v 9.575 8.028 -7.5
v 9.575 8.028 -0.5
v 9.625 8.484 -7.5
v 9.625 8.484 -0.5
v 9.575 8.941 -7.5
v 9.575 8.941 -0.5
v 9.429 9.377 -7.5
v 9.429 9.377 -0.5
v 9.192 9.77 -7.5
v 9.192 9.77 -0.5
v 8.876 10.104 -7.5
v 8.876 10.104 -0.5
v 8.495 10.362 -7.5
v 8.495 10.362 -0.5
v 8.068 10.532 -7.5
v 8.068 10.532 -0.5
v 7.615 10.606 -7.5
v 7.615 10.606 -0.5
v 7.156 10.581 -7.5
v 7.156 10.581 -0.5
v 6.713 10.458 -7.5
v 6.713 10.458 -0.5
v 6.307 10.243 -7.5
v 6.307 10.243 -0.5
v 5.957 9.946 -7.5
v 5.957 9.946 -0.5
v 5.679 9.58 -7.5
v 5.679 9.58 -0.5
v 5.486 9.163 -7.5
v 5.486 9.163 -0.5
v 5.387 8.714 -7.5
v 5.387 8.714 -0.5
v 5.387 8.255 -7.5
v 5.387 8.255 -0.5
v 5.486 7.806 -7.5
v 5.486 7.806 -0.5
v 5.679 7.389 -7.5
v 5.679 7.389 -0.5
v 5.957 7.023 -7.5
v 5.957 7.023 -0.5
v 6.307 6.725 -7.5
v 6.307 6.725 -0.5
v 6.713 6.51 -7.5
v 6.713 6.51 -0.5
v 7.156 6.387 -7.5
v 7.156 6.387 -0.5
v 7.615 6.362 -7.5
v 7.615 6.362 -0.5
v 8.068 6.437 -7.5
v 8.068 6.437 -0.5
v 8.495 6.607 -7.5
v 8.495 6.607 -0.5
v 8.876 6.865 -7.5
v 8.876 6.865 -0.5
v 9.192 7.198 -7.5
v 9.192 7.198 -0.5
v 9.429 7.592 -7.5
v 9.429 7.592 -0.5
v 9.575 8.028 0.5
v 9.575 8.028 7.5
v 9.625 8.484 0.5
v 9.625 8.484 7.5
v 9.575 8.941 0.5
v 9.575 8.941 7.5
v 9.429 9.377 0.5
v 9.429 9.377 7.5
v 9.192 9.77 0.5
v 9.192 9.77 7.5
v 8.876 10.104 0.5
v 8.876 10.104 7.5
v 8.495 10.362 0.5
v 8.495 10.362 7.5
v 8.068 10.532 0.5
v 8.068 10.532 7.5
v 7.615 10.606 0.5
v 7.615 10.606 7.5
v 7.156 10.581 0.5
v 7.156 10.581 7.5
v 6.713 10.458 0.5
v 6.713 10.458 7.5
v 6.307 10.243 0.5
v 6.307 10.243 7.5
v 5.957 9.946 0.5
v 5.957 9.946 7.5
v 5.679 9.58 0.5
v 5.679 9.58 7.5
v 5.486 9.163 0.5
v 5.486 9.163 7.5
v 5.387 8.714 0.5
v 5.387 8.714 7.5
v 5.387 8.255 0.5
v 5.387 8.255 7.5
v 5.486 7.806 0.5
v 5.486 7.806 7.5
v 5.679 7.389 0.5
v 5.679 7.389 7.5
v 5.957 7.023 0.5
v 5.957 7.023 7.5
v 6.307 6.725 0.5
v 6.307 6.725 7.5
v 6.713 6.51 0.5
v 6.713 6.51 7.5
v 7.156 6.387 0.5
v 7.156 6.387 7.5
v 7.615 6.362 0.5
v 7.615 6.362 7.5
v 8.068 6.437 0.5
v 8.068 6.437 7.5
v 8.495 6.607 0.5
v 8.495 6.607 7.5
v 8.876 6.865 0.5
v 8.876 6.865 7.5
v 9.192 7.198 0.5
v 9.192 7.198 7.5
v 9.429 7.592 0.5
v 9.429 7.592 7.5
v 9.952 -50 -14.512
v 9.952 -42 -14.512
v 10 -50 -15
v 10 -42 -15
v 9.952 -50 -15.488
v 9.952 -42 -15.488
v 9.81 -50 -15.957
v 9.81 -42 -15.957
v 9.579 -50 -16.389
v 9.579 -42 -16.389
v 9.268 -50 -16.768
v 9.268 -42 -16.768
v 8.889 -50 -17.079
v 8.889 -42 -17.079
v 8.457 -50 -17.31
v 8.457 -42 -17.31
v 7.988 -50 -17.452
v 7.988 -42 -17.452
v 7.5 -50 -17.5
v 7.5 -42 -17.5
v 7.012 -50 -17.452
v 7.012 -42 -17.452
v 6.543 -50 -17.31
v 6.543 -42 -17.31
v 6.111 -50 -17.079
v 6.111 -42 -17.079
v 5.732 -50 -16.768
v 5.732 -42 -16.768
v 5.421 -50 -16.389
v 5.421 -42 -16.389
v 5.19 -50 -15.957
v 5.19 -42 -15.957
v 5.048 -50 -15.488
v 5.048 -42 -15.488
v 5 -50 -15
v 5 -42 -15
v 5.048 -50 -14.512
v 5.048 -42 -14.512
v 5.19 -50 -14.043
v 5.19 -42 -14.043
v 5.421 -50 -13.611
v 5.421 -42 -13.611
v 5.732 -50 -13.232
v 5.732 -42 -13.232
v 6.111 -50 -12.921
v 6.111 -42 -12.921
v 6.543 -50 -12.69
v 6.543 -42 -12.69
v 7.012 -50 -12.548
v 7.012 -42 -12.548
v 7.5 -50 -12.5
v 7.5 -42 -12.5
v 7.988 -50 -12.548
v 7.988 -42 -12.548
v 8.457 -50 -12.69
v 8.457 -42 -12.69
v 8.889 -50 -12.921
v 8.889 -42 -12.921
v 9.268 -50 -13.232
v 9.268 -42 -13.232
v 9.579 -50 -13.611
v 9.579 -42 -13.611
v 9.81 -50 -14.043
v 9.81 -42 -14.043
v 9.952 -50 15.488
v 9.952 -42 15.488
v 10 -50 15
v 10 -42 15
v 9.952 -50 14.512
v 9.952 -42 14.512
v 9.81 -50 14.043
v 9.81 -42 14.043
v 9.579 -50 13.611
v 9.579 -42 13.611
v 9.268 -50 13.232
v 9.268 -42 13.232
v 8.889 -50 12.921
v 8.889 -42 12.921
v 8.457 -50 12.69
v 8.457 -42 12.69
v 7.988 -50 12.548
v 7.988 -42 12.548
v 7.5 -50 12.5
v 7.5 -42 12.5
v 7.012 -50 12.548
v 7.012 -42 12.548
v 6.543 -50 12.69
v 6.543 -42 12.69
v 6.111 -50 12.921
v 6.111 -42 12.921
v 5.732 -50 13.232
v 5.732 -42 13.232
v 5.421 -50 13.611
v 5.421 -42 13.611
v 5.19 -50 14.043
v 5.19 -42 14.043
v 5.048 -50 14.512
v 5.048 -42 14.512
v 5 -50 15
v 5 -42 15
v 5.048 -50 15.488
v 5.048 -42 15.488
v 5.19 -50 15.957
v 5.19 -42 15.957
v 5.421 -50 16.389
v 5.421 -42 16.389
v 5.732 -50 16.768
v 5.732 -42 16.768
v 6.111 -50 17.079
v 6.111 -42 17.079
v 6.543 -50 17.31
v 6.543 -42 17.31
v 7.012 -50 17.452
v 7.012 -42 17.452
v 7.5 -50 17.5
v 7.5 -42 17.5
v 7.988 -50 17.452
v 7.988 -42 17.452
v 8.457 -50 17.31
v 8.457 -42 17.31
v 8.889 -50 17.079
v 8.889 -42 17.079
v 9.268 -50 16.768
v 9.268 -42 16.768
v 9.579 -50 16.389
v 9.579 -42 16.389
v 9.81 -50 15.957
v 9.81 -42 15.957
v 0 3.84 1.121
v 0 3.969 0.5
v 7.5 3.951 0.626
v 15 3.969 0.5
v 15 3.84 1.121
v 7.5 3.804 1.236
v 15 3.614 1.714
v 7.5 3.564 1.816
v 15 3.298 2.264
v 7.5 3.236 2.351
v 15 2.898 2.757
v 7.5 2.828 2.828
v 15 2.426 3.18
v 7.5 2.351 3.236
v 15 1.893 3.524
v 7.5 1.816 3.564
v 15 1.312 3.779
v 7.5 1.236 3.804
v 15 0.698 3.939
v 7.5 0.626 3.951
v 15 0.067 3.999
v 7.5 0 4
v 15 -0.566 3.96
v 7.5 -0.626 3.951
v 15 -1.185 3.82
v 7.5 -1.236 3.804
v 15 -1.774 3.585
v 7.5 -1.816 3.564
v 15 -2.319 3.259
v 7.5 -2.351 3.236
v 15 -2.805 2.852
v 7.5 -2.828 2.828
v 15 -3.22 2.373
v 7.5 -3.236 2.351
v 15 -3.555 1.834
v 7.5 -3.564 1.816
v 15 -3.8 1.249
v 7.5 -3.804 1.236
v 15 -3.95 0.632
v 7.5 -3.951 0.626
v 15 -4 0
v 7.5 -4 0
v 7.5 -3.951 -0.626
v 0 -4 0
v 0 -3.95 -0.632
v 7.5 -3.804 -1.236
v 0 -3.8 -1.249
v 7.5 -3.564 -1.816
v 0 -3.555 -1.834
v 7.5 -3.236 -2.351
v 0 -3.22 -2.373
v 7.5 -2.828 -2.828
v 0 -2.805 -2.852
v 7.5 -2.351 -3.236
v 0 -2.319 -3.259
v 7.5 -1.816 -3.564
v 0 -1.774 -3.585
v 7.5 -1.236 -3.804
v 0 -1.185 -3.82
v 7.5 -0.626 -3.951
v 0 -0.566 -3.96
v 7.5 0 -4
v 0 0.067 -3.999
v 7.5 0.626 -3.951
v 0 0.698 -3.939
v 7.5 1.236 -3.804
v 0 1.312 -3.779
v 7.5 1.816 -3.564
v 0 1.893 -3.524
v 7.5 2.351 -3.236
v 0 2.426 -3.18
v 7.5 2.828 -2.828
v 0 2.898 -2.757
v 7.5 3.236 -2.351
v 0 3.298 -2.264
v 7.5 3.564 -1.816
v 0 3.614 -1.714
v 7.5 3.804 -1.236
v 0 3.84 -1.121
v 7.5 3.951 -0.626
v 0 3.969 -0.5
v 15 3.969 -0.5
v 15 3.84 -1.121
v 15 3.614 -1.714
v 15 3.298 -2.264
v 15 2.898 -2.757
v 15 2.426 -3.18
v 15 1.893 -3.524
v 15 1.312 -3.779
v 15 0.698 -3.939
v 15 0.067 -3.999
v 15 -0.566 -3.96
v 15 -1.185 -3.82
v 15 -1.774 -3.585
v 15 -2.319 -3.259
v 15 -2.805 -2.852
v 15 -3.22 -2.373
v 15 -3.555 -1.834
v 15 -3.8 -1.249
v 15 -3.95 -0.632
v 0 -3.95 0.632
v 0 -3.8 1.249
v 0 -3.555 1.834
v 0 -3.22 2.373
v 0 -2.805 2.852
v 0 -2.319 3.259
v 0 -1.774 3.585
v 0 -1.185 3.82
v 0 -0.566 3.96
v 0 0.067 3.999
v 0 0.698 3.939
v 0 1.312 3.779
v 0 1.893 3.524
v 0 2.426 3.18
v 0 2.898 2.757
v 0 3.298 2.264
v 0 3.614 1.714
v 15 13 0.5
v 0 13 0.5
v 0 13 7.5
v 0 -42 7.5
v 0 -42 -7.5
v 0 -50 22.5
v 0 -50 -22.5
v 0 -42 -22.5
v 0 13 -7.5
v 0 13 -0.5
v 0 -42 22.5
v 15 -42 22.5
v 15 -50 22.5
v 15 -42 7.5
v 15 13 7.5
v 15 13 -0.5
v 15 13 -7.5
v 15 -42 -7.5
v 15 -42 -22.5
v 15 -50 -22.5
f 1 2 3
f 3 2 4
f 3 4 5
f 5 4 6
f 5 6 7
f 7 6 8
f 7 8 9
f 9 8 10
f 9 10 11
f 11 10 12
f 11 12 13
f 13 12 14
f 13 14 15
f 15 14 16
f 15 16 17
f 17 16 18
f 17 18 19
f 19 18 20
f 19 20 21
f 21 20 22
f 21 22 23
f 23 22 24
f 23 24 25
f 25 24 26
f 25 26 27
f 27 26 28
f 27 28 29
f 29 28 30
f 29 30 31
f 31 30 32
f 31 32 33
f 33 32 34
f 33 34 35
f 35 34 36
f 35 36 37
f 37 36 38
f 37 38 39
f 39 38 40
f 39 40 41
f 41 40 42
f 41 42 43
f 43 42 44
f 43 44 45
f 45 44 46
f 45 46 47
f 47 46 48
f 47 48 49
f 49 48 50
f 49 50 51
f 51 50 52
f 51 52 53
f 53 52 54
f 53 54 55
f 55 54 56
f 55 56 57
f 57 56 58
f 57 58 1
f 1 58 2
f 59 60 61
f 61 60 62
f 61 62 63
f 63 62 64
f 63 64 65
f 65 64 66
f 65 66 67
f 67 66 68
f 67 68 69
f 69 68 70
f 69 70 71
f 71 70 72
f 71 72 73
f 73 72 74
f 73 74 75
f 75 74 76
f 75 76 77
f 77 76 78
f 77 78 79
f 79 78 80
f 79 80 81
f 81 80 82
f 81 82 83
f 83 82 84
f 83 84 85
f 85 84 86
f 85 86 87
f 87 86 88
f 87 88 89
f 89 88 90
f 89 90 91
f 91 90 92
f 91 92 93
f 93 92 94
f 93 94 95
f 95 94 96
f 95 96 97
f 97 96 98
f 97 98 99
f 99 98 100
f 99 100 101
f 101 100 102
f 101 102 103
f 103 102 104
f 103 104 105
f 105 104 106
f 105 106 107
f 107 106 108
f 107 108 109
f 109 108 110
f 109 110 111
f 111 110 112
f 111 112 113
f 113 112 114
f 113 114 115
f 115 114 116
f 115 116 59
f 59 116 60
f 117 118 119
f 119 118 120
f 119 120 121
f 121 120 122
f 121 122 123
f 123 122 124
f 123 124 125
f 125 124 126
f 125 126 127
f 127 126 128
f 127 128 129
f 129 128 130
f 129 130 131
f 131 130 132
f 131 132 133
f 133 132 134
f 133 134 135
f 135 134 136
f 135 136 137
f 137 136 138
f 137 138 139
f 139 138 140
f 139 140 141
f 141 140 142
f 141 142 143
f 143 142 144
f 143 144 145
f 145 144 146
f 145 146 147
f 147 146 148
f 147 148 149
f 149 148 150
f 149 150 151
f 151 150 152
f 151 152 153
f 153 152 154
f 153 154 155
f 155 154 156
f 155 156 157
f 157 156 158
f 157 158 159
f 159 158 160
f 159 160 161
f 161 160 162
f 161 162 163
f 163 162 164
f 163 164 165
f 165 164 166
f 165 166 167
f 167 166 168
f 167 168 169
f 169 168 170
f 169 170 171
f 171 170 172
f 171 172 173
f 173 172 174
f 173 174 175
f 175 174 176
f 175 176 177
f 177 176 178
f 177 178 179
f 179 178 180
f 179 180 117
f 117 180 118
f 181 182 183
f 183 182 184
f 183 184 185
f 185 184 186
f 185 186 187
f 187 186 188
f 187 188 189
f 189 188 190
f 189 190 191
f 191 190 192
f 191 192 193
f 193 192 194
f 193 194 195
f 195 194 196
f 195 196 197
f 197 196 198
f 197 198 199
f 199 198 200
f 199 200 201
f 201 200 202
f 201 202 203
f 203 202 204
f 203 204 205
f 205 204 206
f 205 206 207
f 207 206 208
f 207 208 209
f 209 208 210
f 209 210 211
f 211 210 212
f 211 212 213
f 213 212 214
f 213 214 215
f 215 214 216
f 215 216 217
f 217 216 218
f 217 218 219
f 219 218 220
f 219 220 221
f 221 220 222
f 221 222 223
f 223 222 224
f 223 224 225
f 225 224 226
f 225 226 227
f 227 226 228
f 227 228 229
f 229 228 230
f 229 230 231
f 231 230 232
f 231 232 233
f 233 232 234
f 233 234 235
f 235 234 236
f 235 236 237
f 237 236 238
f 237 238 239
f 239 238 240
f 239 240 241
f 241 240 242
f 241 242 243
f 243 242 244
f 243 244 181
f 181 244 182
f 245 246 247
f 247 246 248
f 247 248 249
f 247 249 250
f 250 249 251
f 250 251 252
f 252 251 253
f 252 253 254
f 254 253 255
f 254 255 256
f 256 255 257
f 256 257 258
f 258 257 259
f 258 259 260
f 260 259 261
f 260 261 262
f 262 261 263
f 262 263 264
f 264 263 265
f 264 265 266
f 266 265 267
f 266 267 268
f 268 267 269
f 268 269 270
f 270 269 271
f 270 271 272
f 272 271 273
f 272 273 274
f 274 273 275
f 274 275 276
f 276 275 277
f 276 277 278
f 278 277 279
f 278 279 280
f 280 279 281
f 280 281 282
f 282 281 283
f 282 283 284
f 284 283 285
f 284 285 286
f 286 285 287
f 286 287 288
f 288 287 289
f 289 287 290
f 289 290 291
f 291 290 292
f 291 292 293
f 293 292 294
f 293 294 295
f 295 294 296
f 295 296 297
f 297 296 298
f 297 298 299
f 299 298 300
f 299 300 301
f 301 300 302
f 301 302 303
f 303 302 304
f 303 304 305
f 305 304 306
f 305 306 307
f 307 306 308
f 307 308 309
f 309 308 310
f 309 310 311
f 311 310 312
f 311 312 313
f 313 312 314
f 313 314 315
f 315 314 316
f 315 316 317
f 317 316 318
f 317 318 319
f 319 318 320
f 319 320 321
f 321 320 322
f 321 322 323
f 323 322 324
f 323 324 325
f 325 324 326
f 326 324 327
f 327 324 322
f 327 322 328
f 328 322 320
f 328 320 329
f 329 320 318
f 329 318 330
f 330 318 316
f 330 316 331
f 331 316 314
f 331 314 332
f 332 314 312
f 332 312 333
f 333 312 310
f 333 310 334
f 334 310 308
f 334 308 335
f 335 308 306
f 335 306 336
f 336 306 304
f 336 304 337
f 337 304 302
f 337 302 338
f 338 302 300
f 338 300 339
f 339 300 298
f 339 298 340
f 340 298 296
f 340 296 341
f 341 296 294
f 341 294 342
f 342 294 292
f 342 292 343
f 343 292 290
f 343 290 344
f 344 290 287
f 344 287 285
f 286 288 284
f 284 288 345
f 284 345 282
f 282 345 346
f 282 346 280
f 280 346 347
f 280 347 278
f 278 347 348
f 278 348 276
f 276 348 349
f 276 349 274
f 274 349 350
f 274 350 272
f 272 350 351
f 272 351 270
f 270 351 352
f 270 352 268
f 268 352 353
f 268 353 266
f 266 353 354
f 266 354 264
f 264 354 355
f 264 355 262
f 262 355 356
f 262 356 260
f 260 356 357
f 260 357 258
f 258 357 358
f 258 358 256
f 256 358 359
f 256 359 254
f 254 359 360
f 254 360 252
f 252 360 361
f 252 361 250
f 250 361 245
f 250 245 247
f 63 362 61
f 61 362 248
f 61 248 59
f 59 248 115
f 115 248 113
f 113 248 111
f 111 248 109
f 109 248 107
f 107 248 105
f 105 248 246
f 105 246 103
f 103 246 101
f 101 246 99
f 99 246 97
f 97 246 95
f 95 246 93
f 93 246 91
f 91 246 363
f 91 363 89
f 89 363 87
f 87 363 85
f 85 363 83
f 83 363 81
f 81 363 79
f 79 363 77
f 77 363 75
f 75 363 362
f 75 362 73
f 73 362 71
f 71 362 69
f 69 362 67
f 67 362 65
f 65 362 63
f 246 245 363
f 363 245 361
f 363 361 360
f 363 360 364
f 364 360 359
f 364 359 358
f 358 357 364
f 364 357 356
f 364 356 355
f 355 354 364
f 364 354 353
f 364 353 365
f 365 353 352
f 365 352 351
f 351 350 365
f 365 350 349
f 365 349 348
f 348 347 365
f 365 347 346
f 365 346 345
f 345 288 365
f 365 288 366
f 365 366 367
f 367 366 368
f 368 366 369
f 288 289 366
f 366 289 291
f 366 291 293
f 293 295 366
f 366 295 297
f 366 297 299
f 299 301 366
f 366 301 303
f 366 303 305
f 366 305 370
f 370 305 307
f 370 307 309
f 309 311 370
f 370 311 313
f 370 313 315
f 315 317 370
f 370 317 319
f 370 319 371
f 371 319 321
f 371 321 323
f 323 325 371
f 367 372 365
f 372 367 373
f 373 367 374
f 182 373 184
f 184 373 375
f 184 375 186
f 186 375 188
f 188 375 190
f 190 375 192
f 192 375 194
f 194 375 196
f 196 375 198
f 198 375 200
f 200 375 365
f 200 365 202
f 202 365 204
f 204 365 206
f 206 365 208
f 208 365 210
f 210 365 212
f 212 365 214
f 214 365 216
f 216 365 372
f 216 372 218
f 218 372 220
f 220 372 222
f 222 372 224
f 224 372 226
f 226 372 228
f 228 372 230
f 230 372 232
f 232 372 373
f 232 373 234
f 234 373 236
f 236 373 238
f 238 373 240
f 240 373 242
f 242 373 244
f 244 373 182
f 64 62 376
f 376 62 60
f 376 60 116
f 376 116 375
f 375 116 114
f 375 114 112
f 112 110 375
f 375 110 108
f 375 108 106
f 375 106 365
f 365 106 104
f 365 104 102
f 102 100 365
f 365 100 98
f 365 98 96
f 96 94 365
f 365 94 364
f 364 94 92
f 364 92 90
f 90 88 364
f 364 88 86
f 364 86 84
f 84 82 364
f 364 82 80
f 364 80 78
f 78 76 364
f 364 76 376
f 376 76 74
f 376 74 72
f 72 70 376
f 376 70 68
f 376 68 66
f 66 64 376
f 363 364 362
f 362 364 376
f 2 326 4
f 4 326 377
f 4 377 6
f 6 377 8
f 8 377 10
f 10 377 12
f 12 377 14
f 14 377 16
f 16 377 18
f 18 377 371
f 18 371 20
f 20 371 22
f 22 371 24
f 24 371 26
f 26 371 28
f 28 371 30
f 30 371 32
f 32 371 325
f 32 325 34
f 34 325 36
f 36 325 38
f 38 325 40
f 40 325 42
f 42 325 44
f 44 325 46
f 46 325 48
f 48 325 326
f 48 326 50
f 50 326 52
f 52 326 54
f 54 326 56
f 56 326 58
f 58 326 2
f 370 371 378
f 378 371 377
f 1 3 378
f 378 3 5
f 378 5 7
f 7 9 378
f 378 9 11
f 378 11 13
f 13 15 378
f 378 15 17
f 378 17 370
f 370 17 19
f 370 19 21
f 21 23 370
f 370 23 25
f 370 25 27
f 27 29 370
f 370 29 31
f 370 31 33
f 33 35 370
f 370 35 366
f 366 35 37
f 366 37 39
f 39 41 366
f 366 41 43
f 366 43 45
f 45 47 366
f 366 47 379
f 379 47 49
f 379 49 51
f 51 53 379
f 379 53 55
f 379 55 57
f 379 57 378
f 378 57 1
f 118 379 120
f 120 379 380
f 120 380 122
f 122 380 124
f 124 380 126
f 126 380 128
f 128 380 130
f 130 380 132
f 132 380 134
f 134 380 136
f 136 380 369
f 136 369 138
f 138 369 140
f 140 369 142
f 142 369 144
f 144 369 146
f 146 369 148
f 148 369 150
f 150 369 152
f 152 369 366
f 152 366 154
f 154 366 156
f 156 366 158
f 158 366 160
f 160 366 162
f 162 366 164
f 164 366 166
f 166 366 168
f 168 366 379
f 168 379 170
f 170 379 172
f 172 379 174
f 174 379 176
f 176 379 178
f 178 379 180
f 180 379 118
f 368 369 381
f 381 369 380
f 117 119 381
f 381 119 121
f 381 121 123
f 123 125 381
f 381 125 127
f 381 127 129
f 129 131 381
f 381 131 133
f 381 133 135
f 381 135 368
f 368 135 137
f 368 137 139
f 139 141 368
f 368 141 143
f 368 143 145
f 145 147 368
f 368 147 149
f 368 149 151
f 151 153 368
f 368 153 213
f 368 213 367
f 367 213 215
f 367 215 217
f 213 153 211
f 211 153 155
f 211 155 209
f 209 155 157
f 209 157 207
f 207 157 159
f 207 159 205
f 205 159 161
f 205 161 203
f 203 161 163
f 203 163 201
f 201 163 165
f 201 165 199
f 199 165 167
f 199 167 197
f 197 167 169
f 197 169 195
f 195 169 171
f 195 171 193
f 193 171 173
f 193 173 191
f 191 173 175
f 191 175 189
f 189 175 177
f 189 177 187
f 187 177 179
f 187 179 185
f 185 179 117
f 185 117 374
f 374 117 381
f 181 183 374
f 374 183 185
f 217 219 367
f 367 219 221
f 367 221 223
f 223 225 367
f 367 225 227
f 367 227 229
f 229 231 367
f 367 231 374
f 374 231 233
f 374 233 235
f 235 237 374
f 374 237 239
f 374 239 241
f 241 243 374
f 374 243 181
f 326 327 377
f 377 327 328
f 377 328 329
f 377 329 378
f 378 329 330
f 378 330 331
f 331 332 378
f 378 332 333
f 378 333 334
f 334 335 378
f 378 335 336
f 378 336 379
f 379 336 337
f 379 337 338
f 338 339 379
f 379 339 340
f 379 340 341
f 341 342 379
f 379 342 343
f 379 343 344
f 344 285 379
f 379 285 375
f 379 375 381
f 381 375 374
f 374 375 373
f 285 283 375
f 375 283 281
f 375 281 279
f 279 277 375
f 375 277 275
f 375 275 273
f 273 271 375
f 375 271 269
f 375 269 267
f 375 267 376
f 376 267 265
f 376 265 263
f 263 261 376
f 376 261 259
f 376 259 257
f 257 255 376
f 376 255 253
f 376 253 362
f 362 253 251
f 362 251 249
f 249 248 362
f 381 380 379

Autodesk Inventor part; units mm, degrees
ref_plane "YZ Plane" through (0, 0, 0) normal (1, 0, 0) x (0, 1, 0)
ref_plane "XZ Plane" through (0, 0, 0) normal (0, 1, 0) x (-1, 0, 0)
ref_plane "XY Plane" through (0, 0, 0) normal (0, 0, 1) x (1, 0, 0)
sketch "Sketch1" plane through (0, 0, 0) normal (1, 0, 0) x (0, 1, 0)
  line L0 (-50, 22.5) -> (-50, -22.5)
  line L1 (-50, -22.5) -> (-42, -22.5)
  line L2 (-42, -22.5) -> (-42, -7.5)
  line L3 (-42, -7.5) -> (13, -7.5)
  line L4 (13, -7.5) -> (13, -0.5)
  line L5 (-50, 22.5) -> (-42, 22.5)
  line L6 (-42, 22.5) -> (-42, 7.5)
  line L7 (-42, 7.5) -> (13, 7.5)
  line L8 (13, 7.5) -> (13, 0.5)
  circle A0 centre (0, 0) radius 4
  line L9 (13, 0.5) -> (0, 0.5)
  line L10 (0, 0.5) -> (0, -0.5)
  line L11 (0, -0.5) -> (13, -0.5)
  line L12 (0, 0) -> (-35.797, 0) construction
  dimension "d0" = 8
  dimension "d1" = 1
  dimension "d2" = 7
  dimension "d3" = 15
  dimension "d5" = 55
  dimension "d6" = 8
  dimension "d11" = 50
extrude "Extrusion1" add sketch "Sketch1" along normal blind 15 contours L5 L6 L7 L8 L9 A0 L11 L4 L3 L2 L1 L0 | L9 L10 L11 A0 picked at (-1.3236, -0.1605)
extrude "Extrusion2" cut sketch "Sketch1" along normal through all contours L9 L10 L11 A0 | A0 L11 L10 L9
sketch "Sketch2" plane through (0, -42, 22.5) normal (0, 1, 0) x (1, 0, 0)
  circle A0 centre (7.5, 7.5) radius 2.5
  circle A1 centre (7.5, 37.5) radius 2.5
  line L0 (0, 45) -> (0, 30) projected
  line L1 (0, 15) -> (0, 0) projected
  line L2 (0, 45) -> (0, 30) projected
  line L3 (0, 30) -> (15, 30) projected
  line L4 (15, 45) -> (15, 30) projected
  line L5 (0, 45) -> (15, 45) projected
  line L6 (0, 15) -> (0, 0) projected
  line L7 (0, 0) -> (15, 0) projected
  line L8 (15, 15) -> (15, 0) projected
  line L9 (0, 15) -> (15, 15) projected
  line L10 (7.5, 7.5) -> (0, 7.5)
  line L11 (0, 0) -> (0, 45) projected
  line L12 (7.5, 37.5) -> (15, 37.5)
  line L13 (15, 0) -> (15, 45) projected
  line L14 (7.5, 37.5) -> (0, 37.5)
  line L15 (7.5, 37.5) -> (7.5, 30)
  line L16 (7.5, 37.5) -> (7.5, 45)
  line L17 (0, 45) -> (15, 45) projected
  line L18 (7.5, 7.5) -> (15, 7.5)
  line L19 (7.5, 7.5) -> (7.5, 15)
  line L20 (0, 15) -> (15, 15) projected
  line L21 (7.5, 7.5) -> (7.5, 0)
  line L22 (0, 0) -> (15, 0) projected
  point P0 (0, 22.5)
  dimension "d12" = 5
extrude "Extrusion3" cut sketch "Sketch2" against normal through all contours L18 L19 A0 | A0 L21 L18 | L19 L10 A0 | A0 L10 L21 | L15 L12 A1 | A1 L14 L15 | L12 L16 A1 | A1 L16 L14
sketch "Sketch3" plane through (0, -42, 7.5) normal (0, 0, 1) x (1, 0, 0)
  circle A0 centre (7.5, 50.4843) radius 2.125
  line L0 (7.5, 50.4843) -> (0, 50.4843) construction
  line L1 (7.5, 50.4843) -> (15, 50.4843) construction
  line L2 (0, 55) -> (0, 0) projected
  line L3 (0, 55) -> (15, 55) projected
  line L4 (15, 45.9686) -> (15, 55) projected
  line L5 (15, 55) -> (15, 0) projected
  line L6 (7.5, 50.4843) -> (15, 55) construction
  line L7 (15, 45.9686) -> (15, 38) projected
  line L8 (15, 45.9686) -> (7.5, 50.4843) construction
  point P0 (0, 42)
  point P1 (15, 42)
  dimension "d15" = 4.25
extrude "Extrusion4" cut sketch "Sketch3" against normal through all
properties part number "XRodClamp"
